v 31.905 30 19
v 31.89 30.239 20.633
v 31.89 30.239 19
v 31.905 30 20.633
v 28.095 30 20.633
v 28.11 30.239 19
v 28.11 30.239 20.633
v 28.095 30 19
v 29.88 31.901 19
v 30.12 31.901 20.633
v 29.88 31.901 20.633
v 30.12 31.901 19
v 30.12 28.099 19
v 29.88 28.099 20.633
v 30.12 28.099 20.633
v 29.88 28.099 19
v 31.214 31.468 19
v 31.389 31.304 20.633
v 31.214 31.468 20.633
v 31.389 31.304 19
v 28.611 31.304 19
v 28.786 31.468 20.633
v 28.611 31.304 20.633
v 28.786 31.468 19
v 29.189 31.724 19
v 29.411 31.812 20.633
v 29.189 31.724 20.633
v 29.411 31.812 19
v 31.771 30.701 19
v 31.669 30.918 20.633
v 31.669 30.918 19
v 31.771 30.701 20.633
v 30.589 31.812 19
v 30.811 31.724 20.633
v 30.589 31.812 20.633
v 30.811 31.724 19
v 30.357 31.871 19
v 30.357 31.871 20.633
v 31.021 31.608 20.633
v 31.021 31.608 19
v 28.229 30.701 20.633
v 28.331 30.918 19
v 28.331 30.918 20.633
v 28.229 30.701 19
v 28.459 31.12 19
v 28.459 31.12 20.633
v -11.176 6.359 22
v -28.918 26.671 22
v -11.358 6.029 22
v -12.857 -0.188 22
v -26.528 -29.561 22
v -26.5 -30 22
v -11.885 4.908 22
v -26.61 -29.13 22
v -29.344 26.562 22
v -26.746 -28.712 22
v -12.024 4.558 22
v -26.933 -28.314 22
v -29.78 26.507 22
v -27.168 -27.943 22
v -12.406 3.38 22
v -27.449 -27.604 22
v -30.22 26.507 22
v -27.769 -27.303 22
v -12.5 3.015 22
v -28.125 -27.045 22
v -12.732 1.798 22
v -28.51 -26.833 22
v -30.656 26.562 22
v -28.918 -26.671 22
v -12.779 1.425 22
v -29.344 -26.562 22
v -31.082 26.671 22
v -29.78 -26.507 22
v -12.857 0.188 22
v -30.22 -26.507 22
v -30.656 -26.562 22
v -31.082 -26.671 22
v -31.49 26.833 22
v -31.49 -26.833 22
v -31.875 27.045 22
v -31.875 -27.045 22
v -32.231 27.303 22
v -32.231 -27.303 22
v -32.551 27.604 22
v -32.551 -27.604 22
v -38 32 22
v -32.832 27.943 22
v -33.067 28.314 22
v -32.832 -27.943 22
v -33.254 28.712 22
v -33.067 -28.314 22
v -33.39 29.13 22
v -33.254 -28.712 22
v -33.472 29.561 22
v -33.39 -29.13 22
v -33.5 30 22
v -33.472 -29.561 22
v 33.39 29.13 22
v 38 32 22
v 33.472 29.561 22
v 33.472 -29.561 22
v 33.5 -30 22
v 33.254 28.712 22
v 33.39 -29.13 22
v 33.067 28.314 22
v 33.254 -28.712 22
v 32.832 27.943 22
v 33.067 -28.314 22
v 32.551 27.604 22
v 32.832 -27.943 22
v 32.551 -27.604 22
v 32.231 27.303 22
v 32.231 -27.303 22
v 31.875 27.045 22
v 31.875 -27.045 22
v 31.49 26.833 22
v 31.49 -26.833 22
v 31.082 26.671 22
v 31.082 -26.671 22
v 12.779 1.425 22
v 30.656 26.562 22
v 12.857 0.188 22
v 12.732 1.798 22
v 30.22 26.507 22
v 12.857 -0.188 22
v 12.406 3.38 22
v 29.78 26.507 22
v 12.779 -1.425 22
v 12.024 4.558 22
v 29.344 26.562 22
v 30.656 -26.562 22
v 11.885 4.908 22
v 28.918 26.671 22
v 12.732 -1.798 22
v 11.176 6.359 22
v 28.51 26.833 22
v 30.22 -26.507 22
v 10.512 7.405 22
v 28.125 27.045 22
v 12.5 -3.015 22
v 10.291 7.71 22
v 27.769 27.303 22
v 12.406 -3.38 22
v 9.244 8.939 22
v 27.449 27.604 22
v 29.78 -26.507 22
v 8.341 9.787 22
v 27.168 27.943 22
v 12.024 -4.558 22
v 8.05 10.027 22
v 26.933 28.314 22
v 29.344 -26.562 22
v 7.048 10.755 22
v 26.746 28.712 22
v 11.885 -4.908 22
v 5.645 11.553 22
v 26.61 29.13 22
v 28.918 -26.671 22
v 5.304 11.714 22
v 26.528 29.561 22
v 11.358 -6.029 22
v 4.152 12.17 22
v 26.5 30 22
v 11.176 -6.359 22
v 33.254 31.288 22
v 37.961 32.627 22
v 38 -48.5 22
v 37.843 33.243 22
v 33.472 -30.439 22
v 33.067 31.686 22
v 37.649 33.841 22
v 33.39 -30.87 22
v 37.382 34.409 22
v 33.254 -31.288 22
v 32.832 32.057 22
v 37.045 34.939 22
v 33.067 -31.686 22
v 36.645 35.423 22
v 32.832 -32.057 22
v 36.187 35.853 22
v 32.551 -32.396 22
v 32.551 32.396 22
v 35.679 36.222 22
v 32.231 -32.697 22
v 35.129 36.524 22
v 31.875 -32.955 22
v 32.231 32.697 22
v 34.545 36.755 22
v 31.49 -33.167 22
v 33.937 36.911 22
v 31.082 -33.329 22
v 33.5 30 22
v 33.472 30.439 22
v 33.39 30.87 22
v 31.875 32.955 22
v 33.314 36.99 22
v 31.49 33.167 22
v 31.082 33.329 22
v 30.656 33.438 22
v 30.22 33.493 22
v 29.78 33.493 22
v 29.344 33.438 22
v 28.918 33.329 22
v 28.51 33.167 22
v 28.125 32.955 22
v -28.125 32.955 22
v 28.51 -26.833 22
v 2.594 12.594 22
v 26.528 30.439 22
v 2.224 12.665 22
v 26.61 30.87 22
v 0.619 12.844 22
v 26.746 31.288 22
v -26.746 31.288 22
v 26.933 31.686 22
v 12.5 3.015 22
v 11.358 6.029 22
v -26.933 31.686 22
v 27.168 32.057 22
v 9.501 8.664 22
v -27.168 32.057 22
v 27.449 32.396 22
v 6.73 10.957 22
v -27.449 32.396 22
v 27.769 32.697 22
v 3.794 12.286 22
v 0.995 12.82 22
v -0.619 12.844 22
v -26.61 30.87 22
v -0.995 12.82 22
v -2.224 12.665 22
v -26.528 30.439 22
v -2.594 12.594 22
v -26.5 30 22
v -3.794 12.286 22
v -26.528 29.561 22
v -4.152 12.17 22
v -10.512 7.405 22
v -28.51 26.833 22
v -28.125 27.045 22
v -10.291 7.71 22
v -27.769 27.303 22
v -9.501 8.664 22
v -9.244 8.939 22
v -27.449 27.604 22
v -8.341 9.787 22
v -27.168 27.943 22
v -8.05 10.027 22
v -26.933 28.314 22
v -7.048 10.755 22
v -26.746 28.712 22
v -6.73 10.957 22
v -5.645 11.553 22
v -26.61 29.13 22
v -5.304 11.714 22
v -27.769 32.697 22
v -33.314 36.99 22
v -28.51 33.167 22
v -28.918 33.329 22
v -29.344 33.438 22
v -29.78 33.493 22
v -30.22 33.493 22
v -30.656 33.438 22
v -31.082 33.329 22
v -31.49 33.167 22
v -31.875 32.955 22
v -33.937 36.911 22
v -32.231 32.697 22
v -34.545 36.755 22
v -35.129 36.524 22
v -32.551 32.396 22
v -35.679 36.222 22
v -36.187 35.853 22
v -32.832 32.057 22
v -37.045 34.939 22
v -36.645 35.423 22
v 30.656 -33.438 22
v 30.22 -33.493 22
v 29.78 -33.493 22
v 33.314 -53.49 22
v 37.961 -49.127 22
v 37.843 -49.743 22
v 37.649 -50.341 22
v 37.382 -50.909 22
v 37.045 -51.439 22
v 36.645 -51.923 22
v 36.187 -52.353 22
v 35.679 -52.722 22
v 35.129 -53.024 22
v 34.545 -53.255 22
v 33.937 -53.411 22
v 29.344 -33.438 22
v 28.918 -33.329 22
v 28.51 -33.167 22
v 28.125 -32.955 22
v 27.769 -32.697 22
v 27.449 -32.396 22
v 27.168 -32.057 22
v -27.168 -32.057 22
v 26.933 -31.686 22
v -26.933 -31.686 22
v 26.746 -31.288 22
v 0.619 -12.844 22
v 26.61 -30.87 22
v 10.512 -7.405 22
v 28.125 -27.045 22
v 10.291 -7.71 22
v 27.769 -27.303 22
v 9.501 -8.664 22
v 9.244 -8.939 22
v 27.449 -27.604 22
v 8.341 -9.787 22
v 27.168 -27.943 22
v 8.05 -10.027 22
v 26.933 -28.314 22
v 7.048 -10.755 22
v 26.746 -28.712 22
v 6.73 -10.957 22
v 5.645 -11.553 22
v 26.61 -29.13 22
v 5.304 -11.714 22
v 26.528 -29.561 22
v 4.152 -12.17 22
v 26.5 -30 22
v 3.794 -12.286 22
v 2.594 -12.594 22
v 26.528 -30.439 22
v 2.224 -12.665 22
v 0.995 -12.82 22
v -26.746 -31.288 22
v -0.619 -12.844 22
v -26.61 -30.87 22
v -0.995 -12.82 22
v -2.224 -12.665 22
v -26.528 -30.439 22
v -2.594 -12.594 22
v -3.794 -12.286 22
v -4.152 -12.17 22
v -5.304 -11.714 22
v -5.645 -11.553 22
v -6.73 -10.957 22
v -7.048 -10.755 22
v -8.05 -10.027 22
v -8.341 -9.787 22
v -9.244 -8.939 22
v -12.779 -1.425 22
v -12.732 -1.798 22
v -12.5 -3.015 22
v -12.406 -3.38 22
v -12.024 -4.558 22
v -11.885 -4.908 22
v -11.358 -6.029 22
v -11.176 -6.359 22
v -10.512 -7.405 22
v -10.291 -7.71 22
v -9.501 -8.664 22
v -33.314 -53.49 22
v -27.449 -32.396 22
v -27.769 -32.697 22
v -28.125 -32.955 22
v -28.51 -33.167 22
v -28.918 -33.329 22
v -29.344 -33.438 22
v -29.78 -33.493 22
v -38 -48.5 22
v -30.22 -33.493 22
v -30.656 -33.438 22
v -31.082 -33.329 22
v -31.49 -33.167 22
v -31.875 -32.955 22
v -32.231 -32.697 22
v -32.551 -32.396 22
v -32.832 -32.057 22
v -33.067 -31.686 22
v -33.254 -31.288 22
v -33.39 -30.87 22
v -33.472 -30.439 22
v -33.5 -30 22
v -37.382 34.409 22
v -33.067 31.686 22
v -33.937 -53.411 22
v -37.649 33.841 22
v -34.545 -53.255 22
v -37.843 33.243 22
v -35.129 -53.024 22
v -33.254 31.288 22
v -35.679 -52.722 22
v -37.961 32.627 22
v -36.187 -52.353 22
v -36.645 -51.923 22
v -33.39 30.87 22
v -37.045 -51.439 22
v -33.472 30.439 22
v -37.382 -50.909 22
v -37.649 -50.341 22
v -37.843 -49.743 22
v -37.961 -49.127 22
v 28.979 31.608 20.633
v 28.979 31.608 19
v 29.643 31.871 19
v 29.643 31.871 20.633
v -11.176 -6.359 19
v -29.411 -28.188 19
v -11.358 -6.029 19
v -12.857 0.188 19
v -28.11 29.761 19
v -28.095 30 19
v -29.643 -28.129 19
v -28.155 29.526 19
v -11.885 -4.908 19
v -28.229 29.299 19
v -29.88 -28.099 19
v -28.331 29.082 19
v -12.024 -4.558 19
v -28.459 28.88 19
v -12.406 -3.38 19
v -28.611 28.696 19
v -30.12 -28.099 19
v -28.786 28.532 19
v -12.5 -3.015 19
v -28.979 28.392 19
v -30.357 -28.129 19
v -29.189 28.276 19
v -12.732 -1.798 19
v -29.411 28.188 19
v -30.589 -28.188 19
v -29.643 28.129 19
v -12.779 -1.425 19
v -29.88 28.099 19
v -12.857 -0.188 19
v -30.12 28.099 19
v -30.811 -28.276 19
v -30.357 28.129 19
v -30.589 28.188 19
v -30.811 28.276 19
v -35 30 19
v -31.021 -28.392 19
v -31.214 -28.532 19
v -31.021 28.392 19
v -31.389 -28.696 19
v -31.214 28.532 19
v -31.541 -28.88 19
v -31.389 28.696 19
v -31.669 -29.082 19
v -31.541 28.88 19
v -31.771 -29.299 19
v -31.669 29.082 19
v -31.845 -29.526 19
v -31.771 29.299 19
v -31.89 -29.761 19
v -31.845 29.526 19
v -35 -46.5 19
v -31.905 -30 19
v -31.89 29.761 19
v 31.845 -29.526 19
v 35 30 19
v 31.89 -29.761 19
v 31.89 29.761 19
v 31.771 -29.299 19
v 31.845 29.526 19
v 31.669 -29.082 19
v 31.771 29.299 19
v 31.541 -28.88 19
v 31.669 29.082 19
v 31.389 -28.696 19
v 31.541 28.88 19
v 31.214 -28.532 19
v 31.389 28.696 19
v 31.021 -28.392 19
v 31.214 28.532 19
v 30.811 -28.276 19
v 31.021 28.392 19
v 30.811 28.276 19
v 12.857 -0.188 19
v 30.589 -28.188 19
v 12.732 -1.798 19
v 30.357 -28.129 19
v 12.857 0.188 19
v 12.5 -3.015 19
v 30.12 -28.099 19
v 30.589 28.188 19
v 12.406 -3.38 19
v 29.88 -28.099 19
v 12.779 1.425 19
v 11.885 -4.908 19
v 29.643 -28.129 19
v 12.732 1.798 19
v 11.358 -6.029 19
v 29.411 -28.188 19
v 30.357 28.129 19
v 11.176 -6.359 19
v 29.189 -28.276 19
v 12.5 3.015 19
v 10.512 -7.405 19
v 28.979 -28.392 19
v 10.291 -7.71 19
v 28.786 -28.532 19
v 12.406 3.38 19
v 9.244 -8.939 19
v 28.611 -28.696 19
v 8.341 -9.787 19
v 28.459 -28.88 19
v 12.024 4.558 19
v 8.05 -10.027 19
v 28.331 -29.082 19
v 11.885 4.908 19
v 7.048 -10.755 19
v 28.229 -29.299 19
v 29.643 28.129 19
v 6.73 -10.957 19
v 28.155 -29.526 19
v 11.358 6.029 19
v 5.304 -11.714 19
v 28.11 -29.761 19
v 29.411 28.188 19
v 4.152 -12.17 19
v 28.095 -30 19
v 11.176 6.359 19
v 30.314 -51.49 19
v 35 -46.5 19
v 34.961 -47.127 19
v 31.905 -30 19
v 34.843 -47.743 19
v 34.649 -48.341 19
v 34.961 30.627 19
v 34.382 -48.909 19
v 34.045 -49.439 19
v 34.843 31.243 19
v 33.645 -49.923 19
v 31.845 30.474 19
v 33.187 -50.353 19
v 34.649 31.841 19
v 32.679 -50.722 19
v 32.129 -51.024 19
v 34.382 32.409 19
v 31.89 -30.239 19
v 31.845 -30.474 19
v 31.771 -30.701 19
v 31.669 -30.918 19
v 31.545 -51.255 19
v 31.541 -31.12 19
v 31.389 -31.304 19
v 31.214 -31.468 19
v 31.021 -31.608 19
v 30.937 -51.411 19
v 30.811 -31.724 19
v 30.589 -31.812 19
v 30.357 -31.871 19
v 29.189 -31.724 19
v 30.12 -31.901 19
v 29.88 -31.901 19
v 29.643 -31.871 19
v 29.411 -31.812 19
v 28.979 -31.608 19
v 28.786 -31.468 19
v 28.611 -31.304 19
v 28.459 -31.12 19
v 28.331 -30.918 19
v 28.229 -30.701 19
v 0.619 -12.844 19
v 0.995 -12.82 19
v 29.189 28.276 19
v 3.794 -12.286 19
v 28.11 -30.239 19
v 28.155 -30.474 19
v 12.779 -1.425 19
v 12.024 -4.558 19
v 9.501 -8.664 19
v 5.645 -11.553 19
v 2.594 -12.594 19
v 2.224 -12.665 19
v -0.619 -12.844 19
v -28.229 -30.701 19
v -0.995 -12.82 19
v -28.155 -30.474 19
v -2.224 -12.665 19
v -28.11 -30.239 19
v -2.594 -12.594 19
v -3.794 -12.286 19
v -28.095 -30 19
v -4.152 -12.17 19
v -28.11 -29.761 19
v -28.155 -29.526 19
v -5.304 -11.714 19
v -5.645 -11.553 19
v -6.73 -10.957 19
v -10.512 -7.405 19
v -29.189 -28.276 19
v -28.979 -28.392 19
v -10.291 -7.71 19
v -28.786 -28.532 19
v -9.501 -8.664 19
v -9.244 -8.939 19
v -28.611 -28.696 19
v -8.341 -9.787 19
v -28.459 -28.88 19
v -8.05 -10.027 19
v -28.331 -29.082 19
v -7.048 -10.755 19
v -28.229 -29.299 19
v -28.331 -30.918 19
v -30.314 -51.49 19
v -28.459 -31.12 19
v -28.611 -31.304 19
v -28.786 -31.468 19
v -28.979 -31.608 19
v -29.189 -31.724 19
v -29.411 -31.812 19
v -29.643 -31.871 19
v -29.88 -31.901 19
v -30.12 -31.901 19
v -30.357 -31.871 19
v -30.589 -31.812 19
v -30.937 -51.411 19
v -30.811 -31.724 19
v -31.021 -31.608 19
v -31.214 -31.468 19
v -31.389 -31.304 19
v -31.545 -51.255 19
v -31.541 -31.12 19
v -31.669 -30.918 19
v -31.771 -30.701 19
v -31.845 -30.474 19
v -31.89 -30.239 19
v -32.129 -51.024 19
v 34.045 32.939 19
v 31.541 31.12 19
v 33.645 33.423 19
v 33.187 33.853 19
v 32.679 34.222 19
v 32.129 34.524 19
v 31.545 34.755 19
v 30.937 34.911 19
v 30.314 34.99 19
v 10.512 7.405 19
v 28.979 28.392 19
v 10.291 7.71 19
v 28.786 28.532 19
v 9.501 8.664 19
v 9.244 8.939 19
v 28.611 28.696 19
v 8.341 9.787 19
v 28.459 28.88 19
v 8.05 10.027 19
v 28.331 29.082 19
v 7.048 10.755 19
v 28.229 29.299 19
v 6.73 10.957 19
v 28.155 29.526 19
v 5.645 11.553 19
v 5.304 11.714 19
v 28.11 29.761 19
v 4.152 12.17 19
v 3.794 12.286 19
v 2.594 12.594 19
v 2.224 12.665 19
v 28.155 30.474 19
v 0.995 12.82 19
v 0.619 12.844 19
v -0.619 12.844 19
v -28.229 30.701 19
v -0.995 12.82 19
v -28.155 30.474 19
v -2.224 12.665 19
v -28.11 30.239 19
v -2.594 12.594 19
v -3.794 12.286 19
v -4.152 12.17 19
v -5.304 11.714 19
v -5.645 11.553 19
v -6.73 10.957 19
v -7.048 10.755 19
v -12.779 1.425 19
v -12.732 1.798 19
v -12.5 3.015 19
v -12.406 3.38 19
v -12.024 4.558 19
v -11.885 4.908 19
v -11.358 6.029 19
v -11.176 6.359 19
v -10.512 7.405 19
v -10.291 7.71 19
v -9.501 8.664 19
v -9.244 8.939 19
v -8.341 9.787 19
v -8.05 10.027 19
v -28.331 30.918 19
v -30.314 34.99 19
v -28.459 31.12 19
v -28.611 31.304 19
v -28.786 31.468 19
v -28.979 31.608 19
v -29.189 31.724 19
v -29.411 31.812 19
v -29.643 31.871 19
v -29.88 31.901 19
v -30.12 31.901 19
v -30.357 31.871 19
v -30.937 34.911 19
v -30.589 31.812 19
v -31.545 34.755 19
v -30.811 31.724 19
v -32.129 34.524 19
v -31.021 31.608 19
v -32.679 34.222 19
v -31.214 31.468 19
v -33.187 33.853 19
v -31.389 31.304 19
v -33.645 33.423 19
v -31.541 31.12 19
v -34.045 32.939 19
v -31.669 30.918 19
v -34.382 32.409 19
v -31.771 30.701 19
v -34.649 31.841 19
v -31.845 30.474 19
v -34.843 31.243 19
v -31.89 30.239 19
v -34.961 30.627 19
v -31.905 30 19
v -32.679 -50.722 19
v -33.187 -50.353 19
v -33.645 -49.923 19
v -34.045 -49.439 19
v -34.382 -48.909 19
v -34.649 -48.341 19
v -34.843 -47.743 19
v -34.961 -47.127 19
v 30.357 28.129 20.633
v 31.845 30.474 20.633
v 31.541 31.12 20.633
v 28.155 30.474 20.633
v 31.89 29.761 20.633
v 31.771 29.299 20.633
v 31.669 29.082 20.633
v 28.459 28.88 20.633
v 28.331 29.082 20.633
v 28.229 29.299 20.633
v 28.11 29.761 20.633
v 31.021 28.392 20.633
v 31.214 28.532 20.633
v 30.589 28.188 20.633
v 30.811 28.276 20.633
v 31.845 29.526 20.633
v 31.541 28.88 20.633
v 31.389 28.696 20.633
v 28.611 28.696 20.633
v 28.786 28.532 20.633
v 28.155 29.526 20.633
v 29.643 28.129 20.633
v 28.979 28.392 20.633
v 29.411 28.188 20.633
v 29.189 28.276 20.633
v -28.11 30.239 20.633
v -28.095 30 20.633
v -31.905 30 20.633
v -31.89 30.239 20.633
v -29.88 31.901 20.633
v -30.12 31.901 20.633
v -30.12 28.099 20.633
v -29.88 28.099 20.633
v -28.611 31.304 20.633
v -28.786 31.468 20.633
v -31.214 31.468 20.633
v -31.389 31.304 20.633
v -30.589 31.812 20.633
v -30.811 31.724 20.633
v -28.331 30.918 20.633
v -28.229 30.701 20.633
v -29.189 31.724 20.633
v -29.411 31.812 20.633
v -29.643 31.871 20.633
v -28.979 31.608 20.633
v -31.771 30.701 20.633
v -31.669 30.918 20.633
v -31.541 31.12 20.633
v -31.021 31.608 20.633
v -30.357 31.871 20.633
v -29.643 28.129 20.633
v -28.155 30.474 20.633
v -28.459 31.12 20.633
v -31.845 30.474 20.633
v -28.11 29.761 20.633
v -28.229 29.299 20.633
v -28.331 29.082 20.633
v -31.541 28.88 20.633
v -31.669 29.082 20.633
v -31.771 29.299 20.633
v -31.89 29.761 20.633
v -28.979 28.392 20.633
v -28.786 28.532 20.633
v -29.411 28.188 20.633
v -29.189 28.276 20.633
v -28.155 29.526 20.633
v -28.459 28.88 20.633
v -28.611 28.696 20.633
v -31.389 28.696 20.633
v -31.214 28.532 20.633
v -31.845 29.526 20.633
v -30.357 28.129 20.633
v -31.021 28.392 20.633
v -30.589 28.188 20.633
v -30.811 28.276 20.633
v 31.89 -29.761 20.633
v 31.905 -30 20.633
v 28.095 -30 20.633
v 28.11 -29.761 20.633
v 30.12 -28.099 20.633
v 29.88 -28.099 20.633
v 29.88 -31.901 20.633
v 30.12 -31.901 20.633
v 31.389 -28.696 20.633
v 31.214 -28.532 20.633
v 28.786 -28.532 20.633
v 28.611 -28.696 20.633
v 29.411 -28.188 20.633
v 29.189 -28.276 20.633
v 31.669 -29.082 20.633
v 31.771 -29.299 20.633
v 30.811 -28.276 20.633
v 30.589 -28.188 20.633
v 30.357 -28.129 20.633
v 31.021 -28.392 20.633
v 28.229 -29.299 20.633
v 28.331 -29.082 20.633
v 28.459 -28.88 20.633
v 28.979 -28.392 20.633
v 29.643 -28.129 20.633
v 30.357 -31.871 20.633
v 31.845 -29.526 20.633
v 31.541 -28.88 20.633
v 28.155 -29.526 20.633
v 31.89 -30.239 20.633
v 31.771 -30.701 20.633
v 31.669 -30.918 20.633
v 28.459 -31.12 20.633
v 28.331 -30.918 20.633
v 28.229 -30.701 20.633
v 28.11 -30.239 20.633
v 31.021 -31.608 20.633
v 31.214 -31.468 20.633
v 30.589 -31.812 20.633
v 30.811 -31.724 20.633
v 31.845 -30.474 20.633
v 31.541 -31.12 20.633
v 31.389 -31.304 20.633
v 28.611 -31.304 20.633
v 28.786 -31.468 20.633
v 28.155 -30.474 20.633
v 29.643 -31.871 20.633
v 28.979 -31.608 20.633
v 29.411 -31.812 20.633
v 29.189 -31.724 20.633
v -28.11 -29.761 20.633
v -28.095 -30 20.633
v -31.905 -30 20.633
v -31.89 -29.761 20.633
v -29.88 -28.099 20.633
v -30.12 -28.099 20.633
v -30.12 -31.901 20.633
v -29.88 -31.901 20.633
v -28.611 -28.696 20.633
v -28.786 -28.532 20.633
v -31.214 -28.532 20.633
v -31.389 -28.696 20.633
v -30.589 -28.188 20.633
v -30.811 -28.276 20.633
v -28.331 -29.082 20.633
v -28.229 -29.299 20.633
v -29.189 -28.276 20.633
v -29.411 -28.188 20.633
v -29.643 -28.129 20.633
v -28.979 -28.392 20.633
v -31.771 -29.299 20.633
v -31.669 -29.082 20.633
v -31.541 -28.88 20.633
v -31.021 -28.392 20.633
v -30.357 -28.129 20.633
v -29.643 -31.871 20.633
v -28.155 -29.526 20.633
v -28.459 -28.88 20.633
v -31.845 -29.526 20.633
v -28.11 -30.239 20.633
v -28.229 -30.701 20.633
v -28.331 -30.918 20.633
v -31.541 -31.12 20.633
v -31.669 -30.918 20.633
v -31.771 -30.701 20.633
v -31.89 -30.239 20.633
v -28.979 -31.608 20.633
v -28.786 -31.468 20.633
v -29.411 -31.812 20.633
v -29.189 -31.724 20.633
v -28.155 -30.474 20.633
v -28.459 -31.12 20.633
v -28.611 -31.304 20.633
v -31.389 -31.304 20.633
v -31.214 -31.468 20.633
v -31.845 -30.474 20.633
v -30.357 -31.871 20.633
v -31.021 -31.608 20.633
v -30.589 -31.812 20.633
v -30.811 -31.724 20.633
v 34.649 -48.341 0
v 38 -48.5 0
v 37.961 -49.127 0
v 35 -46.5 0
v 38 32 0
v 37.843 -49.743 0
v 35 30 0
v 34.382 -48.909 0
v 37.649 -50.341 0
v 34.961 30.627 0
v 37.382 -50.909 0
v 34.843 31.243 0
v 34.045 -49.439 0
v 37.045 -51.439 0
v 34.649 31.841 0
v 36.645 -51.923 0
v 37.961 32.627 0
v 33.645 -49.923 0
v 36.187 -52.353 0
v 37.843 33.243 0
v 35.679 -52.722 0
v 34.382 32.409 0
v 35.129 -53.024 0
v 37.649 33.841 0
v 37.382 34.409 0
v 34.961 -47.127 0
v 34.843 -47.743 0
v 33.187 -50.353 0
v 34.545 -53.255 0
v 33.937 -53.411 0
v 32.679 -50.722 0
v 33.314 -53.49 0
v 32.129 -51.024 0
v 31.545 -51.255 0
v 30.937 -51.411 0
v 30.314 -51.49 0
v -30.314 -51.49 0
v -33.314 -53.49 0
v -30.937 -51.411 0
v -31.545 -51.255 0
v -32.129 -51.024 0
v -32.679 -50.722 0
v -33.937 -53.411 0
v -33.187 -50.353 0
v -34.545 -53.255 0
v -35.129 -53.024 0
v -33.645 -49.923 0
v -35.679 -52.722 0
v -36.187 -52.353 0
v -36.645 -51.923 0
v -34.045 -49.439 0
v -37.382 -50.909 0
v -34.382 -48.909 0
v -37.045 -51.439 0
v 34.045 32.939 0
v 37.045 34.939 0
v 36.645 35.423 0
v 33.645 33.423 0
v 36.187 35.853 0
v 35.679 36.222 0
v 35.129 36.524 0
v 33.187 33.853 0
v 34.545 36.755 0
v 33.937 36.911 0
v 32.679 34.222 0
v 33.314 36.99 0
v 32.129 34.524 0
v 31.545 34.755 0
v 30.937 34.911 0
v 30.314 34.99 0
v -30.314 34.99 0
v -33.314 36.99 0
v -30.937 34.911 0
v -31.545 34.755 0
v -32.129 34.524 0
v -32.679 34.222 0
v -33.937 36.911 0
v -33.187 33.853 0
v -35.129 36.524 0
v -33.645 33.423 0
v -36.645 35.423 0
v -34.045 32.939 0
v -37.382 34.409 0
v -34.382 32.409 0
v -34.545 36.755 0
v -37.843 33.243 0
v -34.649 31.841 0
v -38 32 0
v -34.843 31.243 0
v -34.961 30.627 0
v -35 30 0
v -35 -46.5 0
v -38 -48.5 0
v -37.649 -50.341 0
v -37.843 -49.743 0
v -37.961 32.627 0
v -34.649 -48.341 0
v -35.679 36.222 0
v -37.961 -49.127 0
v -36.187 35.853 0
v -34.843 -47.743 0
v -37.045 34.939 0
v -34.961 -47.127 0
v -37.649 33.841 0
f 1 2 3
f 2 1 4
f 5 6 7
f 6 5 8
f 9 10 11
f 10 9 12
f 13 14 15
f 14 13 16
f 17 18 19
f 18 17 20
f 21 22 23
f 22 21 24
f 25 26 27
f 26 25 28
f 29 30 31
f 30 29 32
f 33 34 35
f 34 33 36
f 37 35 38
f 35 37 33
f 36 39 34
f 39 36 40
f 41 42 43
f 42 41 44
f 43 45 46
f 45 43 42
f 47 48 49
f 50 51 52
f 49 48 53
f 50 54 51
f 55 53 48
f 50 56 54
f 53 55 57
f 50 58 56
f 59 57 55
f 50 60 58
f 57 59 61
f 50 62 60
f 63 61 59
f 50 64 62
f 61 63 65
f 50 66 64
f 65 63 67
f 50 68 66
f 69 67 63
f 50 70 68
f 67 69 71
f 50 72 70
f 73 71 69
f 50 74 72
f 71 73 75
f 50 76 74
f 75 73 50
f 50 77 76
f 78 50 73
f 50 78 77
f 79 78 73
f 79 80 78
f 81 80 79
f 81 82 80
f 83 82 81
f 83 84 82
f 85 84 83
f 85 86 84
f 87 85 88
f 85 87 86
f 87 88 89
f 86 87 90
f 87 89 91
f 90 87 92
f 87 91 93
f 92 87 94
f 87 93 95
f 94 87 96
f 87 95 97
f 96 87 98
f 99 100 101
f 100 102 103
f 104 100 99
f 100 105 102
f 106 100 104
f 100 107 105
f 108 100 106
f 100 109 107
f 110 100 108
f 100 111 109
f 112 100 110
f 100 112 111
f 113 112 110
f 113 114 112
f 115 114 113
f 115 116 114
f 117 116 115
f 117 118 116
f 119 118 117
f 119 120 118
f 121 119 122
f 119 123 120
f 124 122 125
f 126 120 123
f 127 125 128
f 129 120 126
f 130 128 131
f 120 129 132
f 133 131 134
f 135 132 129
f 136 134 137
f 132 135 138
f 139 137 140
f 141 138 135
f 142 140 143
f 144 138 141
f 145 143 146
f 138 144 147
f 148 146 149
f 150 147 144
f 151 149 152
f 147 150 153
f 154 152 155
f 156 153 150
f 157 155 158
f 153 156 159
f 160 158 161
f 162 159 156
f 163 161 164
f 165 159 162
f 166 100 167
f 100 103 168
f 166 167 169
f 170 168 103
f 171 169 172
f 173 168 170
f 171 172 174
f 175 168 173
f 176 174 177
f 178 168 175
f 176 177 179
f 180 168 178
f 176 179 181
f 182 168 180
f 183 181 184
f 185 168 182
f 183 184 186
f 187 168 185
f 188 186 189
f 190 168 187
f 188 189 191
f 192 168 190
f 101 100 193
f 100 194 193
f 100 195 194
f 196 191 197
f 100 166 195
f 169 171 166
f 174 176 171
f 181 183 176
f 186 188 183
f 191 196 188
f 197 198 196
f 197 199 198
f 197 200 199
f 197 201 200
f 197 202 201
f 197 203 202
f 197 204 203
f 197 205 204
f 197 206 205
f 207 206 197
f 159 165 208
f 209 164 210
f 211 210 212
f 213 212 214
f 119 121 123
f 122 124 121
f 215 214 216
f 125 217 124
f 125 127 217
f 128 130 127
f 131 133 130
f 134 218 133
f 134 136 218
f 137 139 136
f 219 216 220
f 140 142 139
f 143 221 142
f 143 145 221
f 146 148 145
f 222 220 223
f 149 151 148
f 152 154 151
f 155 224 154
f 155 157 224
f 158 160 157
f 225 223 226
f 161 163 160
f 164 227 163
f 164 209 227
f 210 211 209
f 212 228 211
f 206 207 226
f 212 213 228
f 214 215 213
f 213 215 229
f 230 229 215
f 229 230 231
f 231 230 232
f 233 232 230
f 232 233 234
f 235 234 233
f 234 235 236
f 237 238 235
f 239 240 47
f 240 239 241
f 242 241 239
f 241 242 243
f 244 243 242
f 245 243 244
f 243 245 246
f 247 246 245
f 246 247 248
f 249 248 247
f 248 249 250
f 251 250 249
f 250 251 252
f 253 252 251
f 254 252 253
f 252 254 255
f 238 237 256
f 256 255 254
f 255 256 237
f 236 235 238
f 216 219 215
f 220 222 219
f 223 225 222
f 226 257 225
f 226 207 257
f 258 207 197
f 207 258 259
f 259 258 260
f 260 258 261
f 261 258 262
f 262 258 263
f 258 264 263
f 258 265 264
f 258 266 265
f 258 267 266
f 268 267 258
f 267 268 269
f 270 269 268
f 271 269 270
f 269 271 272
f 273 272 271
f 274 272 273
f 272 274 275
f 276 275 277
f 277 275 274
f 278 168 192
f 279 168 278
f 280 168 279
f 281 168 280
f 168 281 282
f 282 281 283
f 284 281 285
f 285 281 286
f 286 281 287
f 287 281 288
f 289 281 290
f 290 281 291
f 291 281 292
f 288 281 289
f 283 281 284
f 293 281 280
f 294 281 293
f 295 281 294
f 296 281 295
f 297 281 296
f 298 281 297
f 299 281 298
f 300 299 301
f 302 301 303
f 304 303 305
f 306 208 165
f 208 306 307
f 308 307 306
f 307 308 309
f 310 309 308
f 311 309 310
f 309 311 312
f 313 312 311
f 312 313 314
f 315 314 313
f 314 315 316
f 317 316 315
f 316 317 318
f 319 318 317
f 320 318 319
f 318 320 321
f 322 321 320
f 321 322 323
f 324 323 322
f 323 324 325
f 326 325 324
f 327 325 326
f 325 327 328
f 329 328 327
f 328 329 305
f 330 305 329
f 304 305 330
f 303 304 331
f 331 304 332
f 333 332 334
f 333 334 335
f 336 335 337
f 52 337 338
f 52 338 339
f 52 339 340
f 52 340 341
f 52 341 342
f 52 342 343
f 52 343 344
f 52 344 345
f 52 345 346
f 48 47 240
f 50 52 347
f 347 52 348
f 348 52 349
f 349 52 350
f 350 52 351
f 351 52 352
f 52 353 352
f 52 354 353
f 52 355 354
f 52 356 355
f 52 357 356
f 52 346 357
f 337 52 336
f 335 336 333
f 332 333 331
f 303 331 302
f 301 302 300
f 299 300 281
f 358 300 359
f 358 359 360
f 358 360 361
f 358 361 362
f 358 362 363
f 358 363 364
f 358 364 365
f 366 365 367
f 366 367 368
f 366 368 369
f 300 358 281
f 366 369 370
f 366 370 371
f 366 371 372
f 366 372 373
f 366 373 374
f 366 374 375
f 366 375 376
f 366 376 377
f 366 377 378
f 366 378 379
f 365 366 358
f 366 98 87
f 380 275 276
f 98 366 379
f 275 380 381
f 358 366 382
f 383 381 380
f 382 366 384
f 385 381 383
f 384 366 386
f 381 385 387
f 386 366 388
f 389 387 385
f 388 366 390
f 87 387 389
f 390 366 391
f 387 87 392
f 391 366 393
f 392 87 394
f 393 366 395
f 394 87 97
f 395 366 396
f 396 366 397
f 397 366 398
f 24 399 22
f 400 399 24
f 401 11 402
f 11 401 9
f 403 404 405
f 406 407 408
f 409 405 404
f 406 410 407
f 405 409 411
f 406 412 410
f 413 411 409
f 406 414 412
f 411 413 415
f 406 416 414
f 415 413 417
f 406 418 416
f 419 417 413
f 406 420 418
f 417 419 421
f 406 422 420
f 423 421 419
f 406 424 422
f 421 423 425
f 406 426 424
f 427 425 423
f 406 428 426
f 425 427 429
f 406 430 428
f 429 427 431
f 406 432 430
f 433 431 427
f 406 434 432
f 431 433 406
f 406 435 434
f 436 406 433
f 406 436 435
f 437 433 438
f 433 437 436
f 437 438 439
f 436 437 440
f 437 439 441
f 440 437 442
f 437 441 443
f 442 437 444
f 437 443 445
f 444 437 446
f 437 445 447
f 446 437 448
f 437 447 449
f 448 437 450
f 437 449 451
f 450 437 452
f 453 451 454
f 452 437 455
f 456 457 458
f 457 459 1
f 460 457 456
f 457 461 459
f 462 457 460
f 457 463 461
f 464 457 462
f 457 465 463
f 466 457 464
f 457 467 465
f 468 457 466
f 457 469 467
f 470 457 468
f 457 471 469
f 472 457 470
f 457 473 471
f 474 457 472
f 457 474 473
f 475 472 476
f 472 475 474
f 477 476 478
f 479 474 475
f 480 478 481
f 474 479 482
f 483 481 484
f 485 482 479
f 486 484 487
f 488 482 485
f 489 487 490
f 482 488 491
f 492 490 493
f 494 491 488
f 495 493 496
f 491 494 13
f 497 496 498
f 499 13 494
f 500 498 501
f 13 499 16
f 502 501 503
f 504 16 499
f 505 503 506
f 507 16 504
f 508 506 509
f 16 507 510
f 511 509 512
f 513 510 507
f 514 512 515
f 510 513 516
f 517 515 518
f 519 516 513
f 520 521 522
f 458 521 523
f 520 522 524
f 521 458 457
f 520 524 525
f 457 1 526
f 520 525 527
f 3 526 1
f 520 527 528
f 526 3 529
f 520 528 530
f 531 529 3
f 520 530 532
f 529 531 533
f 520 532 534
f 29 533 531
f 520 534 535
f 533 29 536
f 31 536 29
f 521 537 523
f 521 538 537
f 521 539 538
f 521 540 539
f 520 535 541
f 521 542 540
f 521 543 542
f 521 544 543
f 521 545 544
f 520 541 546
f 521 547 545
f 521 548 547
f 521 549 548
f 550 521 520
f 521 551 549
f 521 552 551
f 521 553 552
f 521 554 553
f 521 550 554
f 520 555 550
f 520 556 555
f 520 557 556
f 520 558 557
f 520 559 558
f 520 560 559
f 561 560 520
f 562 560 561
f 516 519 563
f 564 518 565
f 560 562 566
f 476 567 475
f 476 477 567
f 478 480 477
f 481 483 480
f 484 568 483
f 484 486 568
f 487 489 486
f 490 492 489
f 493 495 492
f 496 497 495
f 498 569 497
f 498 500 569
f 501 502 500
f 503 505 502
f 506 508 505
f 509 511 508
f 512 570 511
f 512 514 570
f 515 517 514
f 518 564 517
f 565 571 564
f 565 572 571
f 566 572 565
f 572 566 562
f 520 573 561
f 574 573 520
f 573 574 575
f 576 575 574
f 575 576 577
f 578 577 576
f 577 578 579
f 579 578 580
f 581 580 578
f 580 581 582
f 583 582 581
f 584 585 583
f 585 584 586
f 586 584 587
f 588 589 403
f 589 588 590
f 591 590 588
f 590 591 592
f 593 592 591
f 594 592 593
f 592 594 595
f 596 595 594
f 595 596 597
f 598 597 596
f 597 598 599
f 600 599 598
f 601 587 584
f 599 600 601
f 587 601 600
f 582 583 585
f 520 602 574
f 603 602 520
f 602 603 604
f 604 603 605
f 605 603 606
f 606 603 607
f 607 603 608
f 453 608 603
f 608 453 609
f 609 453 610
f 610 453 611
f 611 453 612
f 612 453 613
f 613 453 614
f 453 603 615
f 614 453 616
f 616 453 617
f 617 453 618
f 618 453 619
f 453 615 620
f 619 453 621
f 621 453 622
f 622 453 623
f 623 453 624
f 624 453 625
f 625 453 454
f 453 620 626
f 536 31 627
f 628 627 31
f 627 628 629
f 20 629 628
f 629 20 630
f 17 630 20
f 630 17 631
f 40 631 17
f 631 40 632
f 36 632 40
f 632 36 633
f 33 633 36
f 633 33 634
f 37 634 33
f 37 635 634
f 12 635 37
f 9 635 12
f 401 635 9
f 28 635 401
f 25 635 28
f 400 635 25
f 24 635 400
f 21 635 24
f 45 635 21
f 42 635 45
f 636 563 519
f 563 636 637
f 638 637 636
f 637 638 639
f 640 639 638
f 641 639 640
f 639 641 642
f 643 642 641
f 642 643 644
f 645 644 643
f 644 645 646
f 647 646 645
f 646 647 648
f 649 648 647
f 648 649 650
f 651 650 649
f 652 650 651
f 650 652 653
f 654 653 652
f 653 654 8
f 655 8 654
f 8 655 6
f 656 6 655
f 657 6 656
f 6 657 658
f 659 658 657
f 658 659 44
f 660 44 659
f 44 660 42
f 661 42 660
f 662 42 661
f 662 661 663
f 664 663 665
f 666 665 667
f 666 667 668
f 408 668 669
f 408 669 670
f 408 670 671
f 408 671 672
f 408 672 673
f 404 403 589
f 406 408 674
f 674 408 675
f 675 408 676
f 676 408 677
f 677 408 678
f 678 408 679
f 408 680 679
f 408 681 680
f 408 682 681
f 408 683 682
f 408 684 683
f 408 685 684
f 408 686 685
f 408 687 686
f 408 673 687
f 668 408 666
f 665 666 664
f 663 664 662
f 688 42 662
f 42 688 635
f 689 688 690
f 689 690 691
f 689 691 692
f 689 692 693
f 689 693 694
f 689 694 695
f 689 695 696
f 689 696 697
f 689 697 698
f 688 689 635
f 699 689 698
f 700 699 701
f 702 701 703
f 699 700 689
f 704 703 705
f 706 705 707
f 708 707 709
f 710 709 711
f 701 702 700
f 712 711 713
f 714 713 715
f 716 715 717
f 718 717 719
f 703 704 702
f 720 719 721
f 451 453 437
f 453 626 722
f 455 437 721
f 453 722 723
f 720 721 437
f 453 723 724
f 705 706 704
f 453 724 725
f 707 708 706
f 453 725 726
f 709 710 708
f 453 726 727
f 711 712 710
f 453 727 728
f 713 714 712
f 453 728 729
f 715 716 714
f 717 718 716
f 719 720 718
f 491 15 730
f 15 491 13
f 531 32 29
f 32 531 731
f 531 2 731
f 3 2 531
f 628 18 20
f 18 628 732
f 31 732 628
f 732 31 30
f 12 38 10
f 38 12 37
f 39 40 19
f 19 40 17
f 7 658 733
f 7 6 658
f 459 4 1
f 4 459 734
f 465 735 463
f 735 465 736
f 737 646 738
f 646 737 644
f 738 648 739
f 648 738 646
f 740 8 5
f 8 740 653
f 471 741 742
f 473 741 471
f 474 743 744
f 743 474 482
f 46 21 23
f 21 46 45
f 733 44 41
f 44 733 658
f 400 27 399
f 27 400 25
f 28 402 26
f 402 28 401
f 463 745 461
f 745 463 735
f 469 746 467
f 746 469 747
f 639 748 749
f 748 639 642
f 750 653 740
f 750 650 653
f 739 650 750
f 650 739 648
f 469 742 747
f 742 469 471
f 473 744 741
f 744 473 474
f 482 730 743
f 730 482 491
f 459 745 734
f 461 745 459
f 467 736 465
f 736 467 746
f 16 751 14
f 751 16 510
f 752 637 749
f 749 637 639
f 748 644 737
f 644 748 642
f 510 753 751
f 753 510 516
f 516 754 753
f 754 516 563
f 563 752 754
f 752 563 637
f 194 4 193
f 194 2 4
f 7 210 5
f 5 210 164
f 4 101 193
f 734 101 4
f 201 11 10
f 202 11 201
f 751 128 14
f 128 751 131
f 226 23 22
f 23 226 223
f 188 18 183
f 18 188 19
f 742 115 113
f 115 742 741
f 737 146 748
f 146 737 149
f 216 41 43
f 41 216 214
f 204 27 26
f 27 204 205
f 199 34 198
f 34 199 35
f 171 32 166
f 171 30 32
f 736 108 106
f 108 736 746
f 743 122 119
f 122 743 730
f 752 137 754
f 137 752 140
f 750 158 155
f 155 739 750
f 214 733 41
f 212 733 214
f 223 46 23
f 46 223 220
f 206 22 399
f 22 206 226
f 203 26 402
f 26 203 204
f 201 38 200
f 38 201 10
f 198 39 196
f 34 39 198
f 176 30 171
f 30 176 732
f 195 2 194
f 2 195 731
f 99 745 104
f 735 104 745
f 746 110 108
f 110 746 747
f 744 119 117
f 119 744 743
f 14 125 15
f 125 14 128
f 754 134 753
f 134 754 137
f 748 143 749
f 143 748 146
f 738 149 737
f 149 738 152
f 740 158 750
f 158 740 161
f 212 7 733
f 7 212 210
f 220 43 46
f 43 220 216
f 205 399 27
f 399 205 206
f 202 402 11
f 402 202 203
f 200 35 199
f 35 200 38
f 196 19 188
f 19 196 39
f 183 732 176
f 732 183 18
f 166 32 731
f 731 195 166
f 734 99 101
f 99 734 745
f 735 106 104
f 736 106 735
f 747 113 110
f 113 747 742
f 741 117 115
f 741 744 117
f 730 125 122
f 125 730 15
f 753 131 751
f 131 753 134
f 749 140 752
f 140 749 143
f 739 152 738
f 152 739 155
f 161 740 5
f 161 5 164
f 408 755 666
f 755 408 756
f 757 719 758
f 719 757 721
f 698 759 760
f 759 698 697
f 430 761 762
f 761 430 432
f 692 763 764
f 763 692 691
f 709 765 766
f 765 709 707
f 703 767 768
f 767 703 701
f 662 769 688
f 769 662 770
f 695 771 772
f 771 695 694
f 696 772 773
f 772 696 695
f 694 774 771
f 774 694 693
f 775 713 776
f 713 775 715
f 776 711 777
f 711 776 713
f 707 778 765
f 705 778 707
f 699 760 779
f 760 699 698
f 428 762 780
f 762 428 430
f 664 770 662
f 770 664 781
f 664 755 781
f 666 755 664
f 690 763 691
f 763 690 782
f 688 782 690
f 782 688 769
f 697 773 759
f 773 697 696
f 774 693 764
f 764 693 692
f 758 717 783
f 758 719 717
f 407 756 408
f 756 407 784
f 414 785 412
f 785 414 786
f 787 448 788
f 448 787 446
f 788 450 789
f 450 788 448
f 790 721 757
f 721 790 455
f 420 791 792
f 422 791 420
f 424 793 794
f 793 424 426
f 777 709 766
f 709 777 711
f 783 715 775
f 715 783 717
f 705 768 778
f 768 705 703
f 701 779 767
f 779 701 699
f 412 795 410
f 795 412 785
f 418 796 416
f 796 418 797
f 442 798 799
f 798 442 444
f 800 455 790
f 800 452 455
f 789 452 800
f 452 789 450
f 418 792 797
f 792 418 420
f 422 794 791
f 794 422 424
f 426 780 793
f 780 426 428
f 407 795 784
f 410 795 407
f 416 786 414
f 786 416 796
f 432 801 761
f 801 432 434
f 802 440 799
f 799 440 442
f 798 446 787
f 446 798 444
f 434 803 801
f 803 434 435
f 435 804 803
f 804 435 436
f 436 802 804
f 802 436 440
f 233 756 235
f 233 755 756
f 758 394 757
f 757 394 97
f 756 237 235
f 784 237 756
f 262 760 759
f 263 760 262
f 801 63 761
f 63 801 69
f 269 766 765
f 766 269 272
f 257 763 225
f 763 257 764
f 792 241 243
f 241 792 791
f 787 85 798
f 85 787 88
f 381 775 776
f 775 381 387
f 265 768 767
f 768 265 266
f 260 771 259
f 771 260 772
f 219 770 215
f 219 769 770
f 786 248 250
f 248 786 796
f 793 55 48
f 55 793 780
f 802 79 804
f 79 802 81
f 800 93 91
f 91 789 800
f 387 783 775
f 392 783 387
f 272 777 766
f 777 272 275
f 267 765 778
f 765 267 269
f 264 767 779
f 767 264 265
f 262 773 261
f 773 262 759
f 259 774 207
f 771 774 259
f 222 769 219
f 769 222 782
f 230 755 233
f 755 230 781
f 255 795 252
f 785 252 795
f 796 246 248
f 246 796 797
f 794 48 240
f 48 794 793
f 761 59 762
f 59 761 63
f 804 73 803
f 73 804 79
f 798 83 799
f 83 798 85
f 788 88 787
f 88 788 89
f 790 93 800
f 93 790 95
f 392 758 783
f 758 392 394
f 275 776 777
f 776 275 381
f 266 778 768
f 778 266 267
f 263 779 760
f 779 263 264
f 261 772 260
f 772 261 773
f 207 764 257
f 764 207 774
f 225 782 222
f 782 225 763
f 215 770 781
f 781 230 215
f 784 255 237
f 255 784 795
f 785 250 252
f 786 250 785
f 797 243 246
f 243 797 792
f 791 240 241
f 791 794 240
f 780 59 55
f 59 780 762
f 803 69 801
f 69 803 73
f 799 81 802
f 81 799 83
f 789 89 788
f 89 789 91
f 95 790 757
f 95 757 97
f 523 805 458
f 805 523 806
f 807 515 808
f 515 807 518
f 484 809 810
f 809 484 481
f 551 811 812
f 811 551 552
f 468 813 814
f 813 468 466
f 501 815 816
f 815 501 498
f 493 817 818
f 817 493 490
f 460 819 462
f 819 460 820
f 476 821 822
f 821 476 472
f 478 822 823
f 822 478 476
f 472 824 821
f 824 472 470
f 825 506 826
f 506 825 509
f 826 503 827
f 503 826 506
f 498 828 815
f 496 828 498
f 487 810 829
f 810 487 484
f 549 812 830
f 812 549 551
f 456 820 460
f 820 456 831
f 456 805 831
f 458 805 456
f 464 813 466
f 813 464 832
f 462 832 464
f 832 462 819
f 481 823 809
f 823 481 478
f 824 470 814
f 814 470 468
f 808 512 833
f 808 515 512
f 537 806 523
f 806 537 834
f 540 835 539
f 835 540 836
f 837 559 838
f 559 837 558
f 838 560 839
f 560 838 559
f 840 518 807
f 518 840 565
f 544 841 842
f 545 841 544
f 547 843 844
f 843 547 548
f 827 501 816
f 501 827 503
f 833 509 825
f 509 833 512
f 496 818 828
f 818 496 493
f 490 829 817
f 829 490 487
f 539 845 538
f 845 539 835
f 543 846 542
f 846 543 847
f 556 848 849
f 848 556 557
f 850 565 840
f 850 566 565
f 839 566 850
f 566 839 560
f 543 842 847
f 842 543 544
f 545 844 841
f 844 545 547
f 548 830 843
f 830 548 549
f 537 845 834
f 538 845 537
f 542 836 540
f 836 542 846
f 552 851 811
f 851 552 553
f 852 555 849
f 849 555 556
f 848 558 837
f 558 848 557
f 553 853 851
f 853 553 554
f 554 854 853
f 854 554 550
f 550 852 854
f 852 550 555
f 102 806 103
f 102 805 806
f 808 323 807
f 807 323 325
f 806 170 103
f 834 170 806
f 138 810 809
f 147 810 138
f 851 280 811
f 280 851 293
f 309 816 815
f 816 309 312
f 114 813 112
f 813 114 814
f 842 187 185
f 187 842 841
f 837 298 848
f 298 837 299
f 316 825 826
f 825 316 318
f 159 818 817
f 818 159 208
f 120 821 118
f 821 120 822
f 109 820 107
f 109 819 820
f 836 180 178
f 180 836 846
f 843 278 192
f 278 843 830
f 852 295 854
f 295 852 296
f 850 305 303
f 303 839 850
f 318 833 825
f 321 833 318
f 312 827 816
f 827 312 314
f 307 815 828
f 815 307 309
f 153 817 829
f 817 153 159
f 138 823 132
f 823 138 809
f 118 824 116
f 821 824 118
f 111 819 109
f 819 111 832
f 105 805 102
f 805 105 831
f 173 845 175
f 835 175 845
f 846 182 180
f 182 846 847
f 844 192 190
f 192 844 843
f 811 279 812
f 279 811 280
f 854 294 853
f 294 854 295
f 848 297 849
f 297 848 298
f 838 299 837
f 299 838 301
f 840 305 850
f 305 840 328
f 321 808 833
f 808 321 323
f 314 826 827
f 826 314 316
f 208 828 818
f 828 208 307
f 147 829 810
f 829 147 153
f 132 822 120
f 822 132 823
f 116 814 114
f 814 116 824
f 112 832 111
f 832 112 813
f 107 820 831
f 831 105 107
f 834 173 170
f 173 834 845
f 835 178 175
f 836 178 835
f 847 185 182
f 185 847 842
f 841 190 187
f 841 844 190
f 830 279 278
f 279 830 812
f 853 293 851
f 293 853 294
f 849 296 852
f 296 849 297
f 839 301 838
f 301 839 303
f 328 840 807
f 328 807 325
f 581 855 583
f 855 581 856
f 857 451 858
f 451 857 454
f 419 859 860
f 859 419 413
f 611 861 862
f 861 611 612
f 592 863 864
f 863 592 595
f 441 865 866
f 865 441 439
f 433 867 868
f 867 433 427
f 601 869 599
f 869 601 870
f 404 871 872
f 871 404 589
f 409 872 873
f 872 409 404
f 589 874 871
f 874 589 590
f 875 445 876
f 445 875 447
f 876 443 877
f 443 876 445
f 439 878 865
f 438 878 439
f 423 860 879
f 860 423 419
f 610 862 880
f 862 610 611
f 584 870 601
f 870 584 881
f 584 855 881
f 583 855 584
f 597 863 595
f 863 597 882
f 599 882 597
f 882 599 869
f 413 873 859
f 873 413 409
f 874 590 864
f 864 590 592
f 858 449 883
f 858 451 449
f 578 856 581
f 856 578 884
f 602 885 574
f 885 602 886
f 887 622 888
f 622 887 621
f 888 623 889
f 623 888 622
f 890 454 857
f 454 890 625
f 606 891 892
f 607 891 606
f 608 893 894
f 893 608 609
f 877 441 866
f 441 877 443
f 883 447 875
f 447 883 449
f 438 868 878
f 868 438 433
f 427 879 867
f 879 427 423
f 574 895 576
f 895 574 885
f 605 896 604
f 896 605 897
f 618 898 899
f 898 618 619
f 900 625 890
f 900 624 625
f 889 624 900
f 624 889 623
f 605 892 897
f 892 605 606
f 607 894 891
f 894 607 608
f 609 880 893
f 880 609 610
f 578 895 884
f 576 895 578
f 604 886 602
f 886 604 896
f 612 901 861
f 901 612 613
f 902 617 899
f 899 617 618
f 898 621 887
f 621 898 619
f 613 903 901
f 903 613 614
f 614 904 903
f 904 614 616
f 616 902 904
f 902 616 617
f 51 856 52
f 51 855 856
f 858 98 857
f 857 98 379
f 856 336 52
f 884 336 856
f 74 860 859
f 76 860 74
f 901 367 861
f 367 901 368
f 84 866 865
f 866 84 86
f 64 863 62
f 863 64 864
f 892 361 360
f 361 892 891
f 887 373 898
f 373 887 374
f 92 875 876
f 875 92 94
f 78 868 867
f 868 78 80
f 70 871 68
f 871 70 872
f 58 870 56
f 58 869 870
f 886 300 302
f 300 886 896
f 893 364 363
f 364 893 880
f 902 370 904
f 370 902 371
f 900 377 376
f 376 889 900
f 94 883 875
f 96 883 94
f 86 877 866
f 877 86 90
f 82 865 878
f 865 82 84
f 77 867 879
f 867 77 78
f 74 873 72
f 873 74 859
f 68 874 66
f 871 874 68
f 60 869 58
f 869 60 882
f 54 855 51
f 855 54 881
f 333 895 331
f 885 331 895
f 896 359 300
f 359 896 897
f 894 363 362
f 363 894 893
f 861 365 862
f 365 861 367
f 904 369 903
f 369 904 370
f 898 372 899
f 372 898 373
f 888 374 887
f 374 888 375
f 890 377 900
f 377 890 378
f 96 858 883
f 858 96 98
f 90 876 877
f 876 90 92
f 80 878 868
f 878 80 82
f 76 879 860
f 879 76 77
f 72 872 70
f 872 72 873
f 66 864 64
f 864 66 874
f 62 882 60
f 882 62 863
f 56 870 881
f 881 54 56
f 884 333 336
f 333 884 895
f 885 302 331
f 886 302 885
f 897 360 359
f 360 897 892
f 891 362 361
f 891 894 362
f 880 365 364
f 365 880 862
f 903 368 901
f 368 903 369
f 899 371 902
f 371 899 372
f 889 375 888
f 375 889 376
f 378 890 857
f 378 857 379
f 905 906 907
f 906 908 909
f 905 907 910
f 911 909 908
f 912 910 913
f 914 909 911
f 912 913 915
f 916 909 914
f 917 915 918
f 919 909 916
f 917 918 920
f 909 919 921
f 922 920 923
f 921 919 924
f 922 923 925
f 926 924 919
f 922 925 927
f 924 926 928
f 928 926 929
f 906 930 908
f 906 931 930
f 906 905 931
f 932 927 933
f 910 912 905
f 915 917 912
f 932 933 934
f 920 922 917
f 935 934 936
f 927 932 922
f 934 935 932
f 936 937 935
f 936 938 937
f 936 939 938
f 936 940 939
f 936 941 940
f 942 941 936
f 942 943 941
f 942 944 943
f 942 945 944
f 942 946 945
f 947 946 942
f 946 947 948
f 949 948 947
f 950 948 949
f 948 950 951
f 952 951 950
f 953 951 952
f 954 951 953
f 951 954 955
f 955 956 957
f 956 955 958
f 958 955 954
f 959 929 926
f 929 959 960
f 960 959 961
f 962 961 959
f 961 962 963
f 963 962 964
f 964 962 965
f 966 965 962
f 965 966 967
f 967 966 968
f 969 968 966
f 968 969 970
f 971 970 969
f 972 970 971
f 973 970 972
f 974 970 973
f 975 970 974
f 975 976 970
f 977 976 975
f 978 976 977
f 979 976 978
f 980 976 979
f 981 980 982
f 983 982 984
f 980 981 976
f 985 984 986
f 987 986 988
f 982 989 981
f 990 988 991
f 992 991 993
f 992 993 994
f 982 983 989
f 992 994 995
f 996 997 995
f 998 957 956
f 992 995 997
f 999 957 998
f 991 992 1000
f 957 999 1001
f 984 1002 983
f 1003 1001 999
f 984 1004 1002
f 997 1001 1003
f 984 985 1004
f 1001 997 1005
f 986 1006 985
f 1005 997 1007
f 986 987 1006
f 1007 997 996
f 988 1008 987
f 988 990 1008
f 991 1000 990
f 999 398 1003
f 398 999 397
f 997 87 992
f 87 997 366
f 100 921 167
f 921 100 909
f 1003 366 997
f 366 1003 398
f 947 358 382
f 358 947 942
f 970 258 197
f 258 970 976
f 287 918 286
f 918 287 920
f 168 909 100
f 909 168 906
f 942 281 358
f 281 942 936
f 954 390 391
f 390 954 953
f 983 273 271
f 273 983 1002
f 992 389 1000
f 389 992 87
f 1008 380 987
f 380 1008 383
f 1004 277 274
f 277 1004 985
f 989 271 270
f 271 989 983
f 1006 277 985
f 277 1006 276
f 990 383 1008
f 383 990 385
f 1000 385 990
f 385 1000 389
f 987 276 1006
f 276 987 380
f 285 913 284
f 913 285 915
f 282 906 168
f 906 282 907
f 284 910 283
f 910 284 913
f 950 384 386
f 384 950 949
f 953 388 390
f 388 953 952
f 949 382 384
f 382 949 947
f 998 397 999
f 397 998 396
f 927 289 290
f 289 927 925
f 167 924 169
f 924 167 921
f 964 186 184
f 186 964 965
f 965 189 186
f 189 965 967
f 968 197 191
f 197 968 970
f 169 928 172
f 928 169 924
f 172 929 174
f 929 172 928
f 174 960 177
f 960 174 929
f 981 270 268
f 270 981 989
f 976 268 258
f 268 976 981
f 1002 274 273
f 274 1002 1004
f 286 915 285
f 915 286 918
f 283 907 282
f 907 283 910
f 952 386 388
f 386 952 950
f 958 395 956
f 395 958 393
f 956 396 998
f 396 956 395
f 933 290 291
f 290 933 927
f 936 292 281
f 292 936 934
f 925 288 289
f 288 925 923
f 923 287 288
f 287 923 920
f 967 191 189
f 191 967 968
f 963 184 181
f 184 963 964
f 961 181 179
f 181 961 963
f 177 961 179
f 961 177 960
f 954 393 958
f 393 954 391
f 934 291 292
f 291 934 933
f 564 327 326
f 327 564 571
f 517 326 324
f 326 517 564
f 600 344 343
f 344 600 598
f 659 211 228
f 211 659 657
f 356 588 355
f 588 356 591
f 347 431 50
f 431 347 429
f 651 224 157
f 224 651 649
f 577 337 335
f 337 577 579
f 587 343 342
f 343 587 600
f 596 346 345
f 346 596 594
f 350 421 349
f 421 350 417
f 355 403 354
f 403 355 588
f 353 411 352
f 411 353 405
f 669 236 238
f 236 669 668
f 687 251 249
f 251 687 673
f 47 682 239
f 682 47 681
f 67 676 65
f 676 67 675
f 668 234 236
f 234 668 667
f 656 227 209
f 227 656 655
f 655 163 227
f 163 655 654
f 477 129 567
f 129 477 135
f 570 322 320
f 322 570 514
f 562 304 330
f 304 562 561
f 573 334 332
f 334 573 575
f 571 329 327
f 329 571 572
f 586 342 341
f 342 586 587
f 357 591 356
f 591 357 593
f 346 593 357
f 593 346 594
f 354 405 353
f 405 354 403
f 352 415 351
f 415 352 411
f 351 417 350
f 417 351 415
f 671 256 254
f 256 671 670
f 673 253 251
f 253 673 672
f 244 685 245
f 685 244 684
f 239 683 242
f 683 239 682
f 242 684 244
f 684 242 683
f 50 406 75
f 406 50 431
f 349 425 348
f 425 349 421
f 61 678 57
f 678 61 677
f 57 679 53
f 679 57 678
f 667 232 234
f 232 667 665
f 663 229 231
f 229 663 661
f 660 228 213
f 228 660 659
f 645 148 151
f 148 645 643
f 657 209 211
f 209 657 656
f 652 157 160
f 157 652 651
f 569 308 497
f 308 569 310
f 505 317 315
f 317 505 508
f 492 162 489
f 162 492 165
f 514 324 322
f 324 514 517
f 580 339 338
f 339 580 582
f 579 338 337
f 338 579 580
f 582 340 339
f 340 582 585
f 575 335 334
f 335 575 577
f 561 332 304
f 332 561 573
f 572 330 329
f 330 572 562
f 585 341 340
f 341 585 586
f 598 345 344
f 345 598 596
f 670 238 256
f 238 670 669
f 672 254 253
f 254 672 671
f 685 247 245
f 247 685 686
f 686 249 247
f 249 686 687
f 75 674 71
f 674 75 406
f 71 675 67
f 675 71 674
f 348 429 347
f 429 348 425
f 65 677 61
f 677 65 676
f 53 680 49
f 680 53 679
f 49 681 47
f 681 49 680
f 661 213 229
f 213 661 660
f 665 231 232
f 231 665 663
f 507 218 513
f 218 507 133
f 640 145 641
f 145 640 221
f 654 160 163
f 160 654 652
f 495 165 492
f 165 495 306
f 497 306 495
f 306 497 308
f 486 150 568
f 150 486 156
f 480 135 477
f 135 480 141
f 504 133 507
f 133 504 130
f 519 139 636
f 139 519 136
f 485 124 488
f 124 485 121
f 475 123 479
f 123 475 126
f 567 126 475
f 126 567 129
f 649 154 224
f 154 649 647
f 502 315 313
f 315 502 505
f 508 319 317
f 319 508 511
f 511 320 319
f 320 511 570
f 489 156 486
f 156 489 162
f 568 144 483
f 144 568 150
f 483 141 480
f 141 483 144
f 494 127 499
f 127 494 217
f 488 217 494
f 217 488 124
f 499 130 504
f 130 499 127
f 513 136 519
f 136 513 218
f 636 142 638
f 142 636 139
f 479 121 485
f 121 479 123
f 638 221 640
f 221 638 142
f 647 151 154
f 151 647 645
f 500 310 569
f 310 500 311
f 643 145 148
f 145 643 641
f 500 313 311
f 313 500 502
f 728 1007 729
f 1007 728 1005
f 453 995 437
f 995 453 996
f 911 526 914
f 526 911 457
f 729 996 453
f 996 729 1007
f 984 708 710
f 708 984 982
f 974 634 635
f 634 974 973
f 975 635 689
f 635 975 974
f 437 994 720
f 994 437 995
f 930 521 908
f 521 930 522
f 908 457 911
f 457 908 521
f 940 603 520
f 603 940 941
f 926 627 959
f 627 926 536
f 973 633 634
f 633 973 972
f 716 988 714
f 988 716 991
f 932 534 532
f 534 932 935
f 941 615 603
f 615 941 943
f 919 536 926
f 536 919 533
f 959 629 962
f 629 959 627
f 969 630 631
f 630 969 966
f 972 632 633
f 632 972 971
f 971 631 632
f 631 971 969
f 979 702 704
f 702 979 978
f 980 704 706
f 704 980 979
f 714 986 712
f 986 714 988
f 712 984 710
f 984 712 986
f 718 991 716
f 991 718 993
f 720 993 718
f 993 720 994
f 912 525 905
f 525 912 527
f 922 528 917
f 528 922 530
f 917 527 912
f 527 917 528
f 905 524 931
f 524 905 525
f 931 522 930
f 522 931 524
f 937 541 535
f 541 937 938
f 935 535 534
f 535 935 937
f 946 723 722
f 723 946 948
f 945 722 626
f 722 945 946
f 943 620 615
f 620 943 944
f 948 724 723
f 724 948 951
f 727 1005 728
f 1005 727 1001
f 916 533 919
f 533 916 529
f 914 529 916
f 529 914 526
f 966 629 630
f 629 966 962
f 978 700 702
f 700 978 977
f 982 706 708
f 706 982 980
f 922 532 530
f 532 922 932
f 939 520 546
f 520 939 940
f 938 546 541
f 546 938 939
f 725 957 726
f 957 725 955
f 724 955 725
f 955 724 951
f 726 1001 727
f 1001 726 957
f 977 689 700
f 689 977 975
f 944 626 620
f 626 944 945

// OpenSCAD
// TODO: add clearance on bottom for cable
// TODO: extra clearance space (~1.5 mm on each side) for board

$fn=50;
inch = 25.4;

// center to center dimensions
mw = 66;  // board width
mh = 82.5;  // board height
bw = 60;  // mounting rect width
bh = 60;  // mounting rect height
ct = 19;  // cover thickness (neglecting wall)
thick = 3; // wall thickness
clearance = 2; // side clearance

// hole diameters
bd = 0.15*inch;  // board hole diameter

module roundedRect(size, offset, radius) {
  x = size[0];
  y = size[1];  // what was I thinking again??
  z = size[2];  
  
  x0 = offset[0];
  y0 = offset[1];
  z0 = offset[2];

  points = [
    [-x/2+radius, -y/2+radius-8.25, 0],
    [x/2-radius, -y/2+radius-8.25, 0],
    [-x/2+radius, y/2-radius-8.25, 0],
    [x/2-radius, y/2-radius-8.25, 0]
  ];

  linear_extrude(height=z)
  hull() {
    // place 4 circles in the corners, with the given radius
    for (p=points){
        translate(p)
        circle(r=radius);
    }
  }
}

module counterSunk(position, radius) {
  union() {
    translate(position)
    union() {
      cylinder(3, radius, radius, center=false);
      cylinder(3, 0, 3.5, center=false);
    }
  }
}

// plate itself
difference() {
  // positive rectangle
  roundedRect([mw + 2*(thick + clearance), mh + 2*thick + clearance, ct + 3], [0, 8.25, 0], 5, center=false);
  // four board holes
  union() {
    counterSunk([bw/2, bh/2, ct], bd/2);
    counterSunk([-bw/2, bh/2, ct], bd/2);
    counterSunk([bw/2, -bh/2, ct], bd/2);
    counterSunk([-bw/2, -bh/2, ct], bd/2);
  }
  // negative cutouts
  linear_extrude(height=ct+3)
  offset(r=3){
    offset(r=-6){      
        circle(r=0.625*inch);
    }
  }
  roundedRect([mw+2*clearance, mh+2*clearance, ct], [0, 8.25, 0], 5, center=false);
}
